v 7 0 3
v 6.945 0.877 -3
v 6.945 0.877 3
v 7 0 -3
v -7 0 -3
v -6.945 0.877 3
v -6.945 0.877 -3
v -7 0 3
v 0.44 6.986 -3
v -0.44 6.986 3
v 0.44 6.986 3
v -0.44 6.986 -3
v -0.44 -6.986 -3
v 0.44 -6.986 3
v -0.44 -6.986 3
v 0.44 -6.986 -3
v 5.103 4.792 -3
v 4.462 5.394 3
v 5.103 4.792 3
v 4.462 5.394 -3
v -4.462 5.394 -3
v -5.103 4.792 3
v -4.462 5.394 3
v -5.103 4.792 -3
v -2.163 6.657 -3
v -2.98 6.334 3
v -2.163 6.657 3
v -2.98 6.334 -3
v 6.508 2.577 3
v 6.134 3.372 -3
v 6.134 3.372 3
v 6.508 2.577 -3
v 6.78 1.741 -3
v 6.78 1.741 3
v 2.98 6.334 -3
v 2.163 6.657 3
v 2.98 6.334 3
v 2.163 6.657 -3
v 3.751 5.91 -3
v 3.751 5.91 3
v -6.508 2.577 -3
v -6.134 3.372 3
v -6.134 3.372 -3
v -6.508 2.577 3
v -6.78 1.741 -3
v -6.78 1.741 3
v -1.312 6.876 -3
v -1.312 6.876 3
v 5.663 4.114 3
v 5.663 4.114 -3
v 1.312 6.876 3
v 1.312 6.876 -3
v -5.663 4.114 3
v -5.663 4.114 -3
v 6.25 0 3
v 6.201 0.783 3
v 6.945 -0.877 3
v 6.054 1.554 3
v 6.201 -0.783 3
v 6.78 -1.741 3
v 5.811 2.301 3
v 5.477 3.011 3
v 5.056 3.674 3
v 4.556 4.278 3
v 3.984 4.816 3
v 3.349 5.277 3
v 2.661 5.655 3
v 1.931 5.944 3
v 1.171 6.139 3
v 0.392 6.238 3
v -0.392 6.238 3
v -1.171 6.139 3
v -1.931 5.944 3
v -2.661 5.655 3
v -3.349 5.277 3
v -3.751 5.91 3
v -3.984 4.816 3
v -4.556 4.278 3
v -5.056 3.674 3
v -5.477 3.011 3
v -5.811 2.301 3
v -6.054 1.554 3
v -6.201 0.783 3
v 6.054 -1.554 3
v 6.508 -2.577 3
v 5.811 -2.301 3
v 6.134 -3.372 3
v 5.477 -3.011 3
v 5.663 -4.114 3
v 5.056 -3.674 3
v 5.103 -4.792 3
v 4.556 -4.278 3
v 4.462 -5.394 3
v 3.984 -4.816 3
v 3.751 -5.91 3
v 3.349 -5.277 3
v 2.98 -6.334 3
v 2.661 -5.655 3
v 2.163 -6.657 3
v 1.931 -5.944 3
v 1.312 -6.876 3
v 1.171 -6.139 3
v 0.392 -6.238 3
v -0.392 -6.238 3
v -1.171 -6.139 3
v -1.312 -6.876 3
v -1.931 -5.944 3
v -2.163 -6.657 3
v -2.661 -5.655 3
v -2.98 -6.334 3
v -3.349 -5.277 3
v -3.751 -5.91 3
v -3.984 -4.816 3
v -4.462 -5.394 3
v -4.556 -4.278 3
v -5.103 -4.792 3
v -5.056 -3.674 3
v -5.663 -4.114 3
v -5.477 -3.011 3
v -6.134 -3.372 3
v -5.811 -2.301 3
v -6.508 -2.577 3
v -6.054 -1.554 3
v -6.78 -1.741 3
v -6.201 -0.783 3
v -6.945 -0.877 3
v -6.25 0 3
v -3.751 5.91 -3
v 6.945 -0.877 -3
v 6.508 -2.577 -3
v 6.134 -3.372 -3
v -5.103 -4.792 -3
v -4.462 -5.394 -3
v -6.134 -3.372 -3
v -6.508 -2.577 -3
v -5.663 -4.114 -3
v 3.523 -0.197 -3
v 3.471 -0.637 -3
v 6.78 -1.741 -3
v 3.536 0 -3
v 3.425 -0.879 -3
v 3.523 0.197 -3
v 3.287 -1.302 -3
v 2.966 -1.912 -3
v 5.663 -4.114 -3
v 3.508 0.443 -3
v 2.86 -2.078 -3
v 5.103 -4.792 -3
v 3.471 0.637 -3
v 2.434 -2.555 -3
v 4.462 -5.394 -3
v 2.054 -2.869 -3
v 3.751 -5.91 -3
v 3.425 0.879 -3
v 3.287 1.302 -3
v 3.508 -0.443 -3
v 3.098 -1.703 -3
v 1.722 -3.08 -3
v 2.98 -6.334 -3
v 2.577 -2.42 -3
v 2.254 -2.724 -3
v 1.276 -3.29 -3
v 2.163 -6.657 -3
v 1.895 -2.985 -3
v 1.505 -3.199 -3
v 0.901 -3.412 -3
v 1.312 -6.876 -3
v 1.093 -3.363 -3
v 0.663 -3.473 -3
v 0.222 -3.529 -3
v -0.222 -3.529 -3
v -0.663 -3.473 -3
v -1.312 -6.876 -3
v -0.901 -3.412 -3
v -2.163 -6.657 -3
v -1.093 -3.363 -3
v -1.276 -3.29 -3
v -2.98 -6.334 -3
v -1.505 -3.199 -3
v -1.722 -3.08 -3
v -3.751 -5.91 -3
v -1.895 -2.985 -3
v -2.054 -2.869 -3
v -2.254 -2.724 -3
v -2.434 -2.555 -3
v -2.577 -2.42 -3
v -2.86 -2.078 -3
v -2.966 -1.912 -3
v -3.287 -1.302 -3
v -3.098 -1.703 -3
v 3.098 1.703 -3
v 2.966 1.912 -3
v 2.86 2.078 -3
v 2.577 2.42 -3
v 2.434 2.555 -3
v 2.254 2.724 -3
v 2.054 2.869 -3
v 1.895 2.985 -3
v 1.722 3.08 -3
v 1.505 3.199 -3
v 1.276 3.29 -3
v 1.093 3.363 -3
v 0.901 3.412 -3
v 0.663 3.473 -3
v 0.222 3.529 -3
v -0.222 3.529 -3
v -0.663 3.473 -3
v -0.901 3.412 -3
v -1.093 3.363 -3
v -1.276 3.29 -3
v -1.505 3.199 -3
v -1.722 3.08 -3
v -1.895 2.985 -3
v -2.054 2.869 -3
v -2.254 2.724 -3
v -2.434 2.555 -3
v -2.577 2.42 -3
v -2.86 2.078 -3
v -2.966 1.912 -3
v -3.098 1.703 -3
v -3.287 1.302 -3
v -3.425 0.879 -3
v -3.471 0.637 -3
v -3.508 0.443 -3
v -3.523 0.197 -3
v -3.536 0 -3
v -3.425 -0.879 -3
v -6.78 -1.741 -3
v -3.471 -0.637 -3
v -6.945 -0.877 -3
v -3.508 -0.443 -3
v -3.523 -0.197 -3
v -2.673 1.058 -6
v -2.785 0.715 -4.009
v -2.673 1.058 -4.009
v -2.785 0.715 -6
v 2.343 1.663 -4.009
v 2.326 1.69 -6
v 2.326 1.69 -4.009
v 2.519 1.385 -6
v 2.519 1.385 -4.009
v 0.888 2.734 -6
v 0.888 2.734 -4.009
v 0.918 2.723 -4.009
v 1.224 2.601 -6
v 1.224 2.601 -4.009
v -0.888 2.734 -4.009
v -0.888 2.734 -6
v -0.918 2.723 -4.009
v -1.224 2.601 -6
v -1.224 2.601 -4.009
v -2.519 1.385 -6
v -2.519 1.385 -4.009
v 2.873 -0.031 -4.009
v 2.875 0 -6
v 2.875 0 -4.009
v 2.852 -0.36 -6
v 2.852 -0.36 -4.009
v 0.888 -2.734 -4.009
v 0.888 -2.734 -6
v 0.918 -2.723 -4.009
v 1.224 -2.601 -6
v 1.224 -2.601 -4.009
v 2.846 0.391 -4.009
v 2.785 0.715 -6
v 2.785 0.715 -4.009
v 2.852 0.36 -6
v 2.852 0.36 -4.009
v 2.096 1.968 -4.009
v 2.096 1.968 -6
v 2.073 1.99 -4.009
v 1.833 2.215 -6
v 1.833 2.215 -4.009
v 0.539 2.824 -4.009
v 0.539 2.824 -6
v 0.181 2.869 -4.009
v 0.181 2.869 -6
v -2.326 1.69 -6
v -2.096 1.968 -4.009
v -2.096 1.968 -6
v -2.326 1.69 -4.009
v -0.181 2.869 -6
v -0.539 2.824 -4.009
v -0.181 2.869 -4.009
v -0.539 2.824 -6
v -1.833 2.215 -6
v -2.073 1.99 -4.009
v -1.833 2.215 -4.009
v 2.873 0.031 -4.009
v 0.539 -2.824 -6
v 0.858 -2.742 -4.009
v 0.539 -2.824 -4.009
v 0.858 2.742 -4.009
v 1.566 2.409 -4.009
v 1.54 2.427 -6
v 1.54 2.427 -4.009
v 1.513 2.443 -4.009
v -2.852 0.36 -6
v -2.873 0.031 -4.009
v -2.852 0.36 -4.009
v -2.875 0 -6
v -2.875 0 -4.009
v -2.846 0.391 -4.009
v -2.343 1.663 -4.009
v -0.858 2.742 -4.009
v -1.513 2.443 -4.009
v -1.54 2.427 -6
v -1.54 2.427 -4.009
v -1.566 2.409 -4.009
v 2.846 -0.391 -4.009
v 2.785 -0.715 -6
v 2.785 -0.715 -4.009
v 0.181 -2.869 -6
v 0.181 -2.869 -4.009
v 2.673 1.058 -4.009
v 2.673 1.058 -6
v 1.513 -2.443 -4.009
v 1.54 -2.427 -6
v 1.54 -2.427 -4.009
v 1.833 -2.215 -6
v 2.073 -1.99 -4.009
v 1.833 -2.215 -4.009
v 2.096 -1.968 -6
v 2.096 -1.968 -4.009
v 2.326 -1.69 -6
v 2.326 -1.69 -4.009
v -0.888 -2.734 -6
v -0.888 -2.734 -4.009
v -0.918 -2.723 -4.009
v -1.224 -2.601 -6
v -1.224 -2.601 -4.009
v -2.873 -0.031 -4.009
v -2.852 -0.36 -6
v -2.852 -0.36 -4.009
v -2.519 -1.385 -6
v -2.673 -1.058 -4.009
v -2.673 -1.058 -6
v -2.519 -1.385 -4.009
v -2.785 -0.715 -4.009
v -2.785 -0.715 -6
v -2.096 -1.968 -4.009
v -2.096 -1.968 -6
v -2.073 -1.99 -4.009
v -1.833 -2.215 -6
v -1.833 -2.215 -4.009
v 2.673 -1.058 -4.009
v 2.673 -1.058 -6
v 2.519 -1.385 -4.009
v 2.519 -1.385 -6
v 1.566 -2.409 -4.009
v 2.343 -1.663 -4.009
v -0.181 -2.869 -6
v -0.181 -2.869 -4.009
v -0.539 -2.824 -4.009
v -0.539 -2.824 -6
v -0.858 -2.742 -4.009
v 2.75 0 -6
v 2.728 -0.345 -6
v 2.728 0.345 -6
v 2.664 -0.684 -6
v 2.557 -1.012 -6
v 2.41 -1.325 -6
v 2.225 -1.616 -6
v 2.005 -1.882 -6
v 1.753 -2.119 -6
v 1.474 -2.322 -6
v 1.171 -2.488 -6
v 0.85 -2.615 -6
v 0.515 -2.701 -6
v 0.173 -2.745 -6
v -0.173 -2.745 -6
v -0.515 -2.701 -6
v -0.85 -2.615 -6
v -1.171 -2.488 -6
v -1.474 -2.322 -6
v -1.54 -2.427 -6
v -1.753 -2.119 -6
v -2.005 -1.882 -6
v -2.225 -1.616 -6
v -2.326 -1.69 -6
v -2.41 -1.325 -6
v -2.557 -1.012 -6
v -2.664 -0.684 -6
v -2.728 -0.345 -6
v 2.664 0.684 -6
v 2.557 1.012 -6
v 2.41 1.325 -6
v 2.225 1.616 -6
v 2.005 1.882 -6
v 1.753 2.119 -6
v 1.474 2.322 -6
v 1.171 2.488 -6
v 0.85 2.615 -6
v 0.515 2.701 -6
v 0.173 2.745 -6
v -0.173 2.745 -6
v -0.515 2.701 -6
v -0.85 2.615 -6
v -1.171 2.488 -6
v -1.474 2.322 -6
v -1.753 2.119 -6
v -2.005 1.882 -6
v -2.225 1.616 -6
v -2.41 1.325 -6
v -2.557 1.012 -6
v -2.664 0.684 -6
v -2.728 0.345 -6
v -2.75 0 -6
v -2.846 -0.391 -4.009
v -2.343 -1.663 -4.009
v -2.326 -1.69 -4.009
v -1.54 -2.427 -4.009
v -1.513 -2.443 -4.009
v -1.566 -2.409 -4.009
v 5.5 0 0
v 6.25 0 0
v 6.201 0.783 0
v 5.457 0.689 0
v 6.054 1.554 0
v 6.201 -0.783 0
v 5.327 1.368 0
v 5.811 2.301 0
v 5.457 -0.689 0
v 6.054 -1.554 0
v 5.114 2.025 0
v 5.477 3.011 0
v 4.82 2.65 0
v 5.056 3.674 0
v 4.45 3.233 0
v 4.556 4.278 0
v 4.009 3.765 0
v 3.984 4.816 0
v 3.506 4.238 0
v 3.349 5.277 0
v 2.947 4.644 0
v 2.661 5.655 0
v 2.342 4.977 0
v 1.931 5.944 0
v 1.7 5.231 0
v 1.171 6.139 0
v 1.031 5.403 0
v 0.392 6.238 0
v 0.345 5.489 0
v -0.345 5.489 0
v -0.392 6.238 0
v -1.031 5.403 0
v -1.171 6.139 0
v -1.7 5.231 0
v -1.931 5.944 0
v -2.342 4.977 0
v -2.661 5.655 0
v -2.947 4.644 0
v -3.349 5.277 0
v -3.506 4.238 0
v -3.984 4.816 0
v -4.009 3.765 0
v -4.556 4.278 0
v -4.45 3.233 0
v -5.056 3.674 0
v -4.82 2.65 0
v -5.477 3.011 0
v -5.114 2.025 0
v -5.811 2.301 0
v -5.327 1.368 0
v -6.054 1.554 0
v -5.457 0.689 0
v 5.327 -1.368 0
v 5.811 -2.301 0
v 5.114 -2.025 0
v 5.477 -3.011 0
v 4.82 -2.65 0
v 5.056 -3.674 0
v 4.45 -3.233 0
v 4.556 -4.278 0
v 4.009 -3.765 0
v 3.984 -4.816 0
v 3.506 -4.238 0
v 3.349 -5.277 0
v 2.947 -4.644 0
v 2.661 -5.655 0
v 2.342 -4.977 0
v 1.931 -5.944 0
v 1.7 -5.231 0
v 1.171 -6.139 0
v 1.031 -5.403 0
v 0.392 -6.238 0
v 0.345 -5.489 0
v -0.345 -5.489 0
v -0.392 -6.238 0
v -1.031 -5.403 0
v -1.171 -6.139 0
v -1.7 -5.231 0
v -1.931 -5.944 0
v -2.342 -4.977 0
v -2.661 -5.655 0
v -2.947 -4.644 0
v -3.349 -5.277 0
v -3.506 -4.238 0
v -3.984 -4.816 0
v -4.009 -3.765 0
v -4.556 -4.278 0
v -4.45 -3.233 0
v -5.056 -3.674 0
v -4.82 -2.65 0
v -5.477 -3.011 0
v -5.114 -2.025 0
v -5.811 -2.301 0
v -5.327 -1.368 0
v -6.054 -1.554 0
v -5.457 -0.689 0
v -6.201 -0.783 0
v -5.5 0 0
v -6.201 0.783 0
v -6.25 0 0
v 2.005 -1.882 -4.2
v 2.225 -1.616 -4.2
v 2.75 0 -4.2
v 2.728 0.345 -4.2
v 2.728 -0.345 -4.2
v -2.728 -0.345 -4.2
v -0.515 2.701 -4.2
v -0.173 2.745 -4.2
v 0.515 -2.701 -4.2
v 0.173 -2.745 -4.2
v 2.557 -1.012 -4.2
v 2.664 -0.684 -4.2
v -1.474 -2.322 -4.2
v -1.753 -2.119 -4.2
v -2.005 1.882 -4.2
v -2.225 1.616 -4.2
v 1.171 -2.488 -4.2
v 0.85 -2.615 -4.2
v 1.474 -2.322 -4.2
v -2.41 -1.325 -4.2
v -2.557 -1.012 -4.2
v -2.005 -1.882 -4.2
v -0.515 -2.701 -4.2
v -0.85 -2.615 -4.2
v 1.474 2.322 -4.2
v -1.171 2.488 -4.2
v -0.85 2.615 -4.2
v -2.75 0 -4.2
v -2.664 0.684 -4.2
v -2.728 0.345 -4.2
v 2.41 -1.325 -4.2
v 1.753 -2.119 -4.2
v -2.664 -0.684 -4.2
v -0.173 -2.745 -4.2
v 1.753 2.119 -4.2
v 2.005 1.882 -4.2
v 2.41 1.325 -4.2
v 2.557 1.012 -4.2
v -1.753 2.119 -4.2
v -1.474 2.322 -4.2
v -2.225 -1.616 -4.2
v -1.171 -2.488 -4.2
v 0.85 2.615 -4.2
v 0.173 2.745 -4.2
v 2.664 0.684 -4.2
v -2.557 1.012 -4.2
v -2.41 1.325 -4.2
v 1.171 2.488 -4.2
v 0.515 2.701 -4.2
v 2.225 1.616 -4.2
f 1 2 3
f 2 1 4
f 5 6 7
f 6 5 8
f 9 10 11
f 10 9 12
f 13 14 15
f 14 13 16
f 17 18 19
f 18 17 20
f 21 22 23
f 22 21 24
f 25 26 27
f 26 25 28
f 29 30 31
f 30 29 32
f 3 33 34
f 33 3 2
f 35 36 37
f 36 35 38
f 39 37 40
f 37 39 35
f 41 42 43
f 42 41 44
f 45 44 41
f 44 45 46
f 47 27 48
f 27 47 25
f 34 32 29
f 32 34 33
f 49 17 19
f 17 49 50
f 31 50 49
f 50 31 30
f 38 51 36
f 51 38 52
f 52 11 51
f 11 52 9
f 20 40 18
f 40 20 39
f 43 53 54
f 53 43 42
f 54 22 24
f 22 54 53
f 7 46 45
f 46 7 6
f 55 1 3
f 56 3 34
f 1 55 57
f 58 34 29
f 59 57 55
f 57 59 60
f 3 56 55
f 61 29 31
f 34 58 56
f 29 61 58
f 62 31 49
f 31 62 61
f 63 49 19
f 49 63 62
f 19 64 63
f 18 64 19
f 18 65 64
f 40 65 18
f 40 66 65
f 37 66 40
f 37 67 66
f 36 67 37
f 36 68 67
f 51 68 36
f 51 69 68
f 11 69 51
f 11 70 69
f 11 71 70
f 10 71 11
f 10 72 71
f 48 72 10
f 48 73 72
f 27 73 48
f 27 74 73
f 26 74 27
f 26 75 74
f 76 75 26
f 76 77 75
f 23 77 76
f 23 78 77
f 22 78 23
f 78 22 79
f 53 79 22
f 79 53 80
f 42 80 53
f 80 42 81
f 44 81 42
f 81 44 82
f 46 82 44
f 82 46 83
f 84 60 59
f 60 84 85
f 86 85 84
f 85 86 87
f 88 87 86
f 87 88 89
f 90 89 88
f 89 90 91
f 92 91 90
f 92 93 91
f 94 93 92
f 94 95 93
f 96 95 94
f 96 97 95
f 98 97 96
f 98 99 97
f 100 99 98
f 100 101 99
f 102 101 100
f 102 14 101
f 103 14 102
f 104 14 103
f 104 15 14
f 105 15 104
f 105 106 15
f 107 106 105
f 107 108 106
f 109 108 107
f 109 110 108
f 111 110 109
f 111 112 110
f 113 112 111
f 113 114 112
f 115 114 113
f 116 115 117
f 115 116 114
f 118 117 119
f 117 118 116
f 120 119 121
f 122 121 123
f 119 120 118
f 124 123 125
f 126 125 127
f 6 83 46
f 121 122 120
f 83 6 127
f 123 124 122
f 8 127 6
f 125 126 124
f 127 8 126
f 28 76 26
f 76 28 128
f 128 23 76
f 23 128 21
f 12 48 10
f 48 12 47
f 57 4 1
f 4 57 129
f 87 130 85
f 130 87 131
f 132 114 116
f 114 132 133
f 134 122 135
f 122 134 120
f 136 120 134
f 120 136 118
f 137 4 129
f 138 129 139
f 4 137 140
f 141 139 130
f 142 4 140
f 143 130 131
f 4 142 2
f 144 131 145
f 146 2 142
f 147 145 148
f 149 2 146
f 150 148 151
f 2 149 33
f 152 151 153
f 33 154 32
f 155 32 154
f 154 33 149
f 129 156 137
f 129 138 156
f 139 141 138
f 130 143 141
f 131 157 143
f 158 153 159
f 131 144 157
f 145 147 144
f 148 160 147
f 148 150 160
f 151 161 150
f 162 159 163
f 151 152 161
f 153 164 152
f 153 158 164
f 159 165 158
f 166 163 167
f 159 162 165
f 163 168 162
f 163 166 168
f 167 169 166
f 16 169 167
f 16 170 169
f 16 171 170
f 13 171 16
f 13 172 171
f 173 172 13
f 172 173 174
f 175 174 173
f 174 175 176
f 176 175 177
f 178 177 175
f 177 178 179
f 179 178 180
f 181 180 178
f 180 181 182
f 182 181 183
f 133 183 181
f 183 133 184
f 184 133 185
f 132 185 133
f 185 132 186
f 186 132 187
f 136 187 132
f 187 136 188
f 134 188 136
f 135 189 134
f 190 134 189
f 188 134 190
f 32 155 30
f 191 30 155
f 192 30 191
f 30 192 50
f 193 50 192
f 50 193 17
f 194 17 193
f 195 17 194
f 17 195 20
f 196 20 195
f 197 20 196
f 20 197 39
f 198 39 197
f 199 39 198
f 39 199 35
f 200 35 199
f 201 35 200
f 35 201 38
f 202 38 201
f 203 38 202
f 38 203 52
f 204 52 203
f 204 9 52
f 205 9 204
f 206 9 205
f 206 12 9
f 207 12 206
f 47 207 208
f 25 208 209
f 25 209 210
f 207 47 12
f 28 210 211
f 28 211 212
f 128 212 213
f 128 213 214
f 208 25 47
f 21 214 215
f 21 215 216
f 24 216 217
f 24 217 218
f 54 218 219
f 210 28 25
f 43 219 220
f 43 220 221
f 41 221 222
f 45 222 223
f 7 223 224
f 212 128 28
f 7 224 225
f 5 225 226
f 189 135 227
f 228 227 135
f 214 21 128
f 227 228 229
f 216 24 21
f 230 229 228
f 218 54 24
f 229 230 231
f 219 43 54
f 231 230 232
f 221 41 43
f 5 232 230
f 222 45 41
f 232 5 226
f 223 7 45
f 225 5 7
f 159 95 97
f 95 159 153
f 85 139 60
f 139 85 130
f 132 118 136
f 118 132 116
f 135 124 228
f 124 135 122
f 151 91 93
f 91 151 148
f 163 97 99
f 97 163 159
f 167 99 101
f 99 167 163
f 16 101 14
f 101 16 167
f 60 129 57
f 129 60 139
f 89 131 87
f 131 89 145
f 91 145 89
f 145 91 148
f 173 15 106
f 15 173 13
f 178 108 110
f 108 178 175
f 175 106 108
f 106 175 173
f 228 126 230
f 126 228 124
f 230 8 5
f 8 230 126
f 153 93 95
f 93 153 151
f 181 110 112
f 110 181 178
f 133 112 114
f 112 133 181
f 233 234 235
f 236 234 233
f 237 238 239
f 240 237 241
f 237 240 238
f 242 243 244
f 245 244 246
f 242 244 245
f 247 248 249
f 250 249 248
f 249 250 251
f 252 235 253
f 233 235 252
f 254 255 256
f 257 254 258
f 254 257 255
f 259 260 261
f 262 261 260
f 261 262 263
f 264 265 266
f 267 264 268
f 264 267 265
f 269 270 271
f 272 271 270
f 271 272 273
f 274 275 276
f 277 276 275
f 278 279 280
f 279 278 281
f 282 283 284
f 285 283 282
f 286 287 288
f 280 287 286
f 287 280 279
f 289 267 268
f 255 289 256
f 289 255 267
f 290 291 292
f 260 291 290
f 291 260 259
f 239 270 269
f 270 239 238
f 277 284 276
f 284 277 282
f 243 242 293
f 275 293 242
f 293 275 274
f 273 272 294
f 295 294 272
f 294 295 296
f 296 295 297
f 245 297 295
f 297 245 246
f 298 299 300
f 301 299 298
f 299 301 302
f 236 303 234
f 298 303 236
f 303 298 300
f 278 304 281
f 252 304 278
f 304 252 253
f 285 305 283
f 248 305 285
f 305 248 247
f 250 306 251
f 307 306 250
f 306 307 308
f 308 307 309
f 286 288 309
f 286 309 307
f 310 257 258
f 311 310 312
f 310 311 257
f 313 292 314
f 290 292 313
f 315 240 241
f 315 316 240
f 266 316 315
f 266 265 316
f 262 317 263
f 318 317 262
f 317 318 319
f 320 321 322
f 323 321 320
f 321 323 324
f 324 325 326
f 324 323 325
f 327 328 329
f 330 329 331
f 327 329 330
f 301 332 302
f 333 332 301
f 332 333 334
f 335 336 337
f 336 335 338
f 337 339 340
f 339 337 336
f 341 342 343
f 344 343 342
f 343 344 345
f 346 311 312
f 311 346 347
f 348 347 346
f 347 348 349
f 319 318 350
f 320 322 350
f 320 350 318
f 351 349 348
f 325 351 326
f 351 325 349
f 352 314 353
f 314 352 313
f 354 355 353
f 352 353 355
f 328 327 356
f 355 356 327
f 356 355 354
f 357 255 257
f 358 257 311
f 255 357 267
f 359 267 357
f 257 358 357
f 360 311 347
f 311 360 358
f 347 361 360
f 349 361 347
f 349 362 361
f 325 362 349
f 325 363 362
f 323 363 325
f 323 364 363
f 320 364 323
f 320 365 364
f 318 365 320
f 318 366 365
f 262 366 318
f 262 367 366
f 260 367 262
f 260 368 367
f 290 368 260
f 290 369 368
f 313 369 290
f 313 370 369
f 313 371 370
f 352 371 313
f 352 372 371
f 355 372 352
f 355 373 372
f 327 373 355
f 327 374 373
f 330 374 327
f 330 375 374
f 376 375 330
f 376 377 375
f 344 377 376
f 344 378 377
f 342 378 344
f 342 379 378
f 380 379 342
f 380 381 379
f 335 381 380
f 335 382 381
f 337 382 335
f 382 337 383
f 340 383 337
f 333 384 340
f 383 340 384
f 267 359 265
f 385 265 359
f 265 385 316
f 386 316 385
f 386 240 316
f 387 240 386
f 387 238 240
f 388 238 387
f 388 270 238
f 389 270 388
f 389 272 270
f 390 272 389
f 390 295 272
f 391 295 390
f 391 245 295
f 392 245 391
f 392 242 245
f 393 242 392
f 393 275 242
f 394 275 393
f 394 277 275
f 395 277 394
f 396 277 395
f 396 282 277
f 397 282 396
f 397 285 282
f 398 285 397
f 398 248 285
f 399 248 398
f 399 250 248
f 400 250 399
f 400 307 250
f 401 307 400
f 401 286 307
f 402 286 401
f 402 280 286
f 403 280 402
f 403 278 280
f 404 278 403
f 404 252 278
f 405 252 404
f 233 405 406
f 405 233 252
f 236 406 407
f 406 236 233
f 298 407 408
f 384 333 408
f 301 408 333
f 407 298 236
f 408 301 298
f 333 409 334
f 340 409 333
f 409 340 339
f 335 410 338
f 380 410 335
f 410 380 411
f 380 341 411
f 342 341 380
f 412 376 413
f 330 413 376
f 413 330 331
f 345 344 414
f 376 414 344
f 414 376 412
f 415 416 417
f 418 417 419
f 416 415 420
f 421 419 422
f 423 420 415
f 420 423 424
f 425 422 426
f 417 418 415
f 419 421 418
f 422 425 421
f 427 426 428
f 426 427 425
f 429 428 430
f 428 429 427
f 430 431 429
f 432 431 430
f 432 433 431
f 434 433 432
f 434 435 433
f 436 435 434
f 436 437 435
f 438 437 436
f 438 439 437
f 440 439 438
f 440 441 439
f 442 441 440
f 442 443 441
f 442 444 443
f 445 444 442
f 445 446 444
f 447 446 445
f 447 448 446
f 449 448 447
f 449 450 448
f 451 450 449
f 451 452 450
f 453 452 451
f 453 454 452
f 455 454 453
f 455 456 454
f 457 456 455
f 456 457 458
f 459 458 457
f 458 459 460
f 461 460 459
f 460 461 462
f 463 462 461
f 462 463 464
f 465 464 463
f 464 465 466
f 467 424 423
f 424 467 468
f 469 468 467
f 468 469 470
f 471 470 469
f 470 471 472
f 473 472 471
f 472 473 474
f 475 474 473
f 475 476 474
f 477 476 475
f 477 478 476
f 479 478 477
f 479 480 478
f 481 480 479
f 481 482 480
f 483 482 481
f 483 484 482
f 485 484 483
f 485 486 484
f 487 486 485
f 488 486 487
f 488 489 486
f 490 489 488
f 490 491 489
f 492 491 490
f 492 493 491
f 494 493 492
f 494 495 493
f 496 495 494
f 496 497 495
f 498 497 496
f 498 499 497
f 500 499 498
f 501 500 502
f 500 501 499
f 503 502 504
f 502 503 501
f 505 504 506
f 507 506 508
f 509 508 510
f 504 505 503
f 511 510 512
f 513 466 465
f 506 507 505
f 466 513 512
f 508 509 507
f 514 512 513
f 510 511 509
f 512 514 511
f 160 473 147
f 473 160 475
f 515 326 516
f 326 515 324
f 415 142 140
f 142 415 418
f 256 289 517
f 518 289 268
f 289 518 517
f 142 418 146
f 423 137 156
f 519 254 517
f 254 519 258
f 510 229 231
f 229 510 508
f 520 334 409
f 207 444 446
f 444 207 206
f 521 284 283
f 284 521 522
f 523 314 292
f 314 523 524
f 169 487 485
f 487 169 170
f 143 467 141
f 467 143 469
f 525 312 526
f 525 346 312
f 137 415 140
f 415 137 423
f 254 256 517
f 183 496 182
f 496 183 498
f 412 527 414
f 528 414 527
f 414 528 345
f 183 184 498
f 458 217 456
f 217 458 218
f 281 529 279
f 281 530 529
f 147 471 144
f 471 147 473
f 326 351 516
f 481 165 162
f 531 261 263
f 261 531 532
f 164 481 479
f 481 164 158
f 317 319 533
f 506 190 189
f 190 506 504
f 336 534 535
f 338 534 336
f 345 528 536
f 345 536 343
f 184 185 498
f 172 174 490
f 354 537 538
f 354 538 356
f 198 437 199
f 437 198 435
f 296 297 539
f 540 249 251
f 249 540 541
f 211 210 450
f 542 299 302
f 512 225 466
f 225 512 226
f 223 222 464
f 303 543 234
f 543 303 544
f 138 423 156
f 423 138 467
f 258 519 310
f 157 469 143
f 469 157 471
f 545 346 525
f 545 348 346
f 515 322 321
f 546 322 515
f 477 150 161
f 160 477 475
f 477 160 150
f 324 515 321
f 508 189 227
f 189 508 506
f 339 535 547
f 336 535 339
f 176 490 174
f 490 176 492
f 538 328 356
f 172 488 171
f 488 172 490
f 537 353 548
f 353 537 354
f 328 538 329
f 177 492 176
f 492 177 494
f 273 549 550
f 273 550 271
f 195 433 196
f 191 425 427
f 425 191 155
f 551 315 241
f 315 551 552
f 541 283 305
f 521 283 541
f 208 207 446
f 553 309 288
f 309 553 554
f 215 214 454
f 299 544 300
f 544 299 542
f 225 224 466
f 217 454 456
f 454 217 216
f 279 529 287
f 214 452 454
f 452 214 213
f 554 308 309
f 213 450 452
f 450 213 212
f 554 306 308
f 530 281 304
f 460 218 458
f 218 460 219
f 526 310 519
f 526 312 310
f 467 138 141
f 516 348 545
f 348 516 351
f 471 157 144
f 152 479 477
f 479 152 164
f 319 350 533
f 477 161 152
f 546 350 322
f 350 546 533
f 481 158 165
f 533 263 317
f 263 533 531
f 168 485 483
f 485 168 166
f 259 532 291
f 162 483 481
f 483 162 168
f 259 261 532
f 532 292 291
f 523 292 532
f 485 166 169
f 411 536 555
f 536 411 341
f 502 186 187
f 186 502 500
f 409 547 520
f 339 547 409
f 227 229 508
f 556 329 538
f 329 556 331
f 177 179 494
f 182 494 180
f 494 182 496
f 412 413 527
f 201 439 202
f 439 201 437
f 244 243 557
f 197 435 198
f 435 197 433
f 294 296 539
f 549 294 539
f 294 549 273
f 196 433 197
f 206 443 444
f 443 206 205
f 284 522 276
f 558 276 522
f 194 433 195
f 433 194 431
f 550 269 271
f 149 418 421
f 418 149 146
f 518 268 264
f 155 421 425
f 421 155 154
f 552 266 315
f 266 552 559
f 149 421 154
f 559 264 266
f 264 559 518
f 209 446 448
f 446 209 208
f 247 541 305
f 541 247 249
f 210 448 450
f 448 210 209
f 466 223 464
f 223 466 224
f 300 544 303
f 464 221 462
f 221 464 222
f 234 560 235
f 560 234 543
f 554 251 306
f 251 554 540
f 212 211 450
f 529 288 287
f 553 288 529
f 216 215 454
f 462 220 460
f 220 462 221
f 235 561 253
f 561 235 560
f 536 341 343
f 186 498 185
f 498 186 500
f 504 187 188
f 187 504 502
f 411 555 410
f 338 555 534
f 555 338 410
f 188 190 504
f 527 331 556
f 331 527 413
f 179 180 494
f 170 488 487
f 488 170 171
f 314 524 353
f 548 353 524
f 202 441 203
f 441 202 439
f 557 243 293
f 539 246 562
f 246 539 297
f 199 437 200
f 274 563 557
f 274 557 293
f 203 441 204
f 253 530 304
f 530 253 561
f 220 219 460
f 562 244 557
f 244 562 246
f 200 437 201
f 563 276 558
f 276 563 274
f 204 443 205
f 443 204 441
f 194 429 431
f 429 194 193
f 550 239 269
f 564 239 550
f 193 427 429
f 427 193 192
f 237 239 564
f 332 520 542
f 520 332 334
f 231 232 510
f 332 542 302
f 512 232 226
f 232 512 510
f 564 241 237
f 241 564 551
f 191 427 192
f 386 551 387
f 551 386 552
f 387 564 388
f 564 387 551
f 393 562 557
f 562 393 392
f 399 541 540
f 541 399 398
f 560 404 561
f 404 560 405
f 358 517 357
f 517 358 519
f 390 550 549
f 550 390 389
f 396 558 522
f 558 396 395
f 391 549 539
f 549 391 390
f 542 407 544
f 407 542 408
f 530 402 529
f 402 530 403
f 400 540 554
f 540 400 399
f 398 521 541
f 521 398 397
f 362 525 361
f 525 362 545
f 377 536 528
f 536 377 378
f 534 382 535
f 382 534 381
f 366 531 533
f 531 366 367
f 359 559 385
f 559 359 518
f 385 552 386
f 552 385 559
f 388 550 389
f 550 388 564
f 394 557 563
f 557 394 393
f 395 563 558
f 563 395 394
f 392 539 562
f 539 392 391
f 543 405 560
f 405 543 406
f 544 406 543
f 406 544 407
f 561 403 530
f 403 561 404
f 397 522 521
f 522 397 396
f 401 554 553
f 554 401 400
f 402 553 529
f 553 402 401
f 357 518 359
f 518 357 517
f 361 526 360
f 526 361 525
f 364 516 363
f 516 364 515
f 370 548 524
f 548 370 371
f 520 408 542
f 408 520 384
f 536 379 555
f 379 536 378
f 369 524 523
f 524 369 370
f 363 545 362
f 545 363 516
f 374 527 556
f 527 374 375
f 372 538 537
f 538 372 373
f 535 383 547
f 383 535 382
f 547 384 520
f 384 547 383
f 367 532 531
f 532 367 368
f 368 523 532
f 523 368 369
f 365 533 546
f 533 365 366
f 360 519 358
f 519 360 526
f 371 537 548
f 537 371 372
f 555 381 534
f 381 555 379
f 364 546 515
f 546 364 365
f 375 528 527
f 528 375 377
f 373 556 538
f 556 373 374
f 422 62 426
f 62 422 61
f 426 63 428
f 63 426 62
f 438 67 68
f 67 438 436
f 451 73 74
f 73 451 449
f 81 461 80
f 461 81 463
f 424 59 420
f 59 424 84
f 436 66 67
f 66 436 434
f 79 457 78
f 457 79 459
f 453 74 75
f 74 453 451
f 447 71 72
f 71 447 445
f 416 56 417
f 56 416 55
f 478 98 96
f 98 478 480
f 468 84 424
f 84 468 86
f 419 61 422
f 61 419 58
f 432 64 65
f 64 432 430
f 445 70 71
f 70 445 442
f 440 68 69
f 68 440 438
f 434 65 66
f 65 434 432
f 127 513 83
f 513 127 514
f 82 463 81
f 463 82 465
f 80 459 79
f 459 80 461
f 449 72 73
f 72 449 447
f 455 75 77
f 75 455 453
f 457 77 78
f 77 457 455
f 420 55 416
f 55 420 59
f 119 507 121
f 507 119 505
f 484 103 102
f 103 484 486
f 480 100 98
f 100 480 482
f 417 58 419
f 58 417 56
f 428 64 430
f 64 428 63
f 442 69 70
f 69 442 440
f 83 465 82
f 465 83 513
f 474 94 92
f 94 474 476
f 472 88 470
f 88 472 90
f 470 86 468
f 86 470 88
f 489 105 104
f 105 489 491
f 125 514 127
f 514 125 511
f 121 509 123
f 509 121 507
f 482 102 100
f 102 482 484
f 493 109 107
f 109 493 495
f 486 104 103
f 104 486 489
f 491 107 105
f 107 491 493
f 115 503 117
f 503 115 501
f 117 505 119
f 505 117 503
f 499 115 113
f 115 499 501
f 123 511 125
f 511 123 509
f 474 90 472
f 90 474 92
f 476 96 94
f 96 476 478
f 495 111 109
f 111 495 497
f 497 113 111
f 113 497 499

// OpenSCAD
$fn = 50;

difference() {
	union() {
		translate(v = [0, 0, -3.0]) {
			cylinder(h = 6, r = 7.0);
		}
		#translate(v = [0, 0, -6.0]) {
			cylinder(h = 6, r = 2.875);
		}
	}
	union() {
		translate(v = [0, 0, 0]) {
			rotate(a = [0, 0, 0]) {
				difference() {
					union() {
						translate(v = [0, 0, -6.0]) {
							cylinder(h = 6, r = 2.25);
						}
						translate(v = [0, 0, -4.2]) {
							cylinder(h = 4.2, r1 = 2.75, r2 = 5.5);
						}
						translate(v = [0, 0, -6.0]) {
							cylinder(h = 6, r = 2.75);
						}
						translate(v = [0, 0, -6.0]) {
							cylinder(h = 6, r = 2.25);
						}
					}
					union();
				}
			}
		}
		#cylinder(h = 3, r = 6.25);
	}
}
